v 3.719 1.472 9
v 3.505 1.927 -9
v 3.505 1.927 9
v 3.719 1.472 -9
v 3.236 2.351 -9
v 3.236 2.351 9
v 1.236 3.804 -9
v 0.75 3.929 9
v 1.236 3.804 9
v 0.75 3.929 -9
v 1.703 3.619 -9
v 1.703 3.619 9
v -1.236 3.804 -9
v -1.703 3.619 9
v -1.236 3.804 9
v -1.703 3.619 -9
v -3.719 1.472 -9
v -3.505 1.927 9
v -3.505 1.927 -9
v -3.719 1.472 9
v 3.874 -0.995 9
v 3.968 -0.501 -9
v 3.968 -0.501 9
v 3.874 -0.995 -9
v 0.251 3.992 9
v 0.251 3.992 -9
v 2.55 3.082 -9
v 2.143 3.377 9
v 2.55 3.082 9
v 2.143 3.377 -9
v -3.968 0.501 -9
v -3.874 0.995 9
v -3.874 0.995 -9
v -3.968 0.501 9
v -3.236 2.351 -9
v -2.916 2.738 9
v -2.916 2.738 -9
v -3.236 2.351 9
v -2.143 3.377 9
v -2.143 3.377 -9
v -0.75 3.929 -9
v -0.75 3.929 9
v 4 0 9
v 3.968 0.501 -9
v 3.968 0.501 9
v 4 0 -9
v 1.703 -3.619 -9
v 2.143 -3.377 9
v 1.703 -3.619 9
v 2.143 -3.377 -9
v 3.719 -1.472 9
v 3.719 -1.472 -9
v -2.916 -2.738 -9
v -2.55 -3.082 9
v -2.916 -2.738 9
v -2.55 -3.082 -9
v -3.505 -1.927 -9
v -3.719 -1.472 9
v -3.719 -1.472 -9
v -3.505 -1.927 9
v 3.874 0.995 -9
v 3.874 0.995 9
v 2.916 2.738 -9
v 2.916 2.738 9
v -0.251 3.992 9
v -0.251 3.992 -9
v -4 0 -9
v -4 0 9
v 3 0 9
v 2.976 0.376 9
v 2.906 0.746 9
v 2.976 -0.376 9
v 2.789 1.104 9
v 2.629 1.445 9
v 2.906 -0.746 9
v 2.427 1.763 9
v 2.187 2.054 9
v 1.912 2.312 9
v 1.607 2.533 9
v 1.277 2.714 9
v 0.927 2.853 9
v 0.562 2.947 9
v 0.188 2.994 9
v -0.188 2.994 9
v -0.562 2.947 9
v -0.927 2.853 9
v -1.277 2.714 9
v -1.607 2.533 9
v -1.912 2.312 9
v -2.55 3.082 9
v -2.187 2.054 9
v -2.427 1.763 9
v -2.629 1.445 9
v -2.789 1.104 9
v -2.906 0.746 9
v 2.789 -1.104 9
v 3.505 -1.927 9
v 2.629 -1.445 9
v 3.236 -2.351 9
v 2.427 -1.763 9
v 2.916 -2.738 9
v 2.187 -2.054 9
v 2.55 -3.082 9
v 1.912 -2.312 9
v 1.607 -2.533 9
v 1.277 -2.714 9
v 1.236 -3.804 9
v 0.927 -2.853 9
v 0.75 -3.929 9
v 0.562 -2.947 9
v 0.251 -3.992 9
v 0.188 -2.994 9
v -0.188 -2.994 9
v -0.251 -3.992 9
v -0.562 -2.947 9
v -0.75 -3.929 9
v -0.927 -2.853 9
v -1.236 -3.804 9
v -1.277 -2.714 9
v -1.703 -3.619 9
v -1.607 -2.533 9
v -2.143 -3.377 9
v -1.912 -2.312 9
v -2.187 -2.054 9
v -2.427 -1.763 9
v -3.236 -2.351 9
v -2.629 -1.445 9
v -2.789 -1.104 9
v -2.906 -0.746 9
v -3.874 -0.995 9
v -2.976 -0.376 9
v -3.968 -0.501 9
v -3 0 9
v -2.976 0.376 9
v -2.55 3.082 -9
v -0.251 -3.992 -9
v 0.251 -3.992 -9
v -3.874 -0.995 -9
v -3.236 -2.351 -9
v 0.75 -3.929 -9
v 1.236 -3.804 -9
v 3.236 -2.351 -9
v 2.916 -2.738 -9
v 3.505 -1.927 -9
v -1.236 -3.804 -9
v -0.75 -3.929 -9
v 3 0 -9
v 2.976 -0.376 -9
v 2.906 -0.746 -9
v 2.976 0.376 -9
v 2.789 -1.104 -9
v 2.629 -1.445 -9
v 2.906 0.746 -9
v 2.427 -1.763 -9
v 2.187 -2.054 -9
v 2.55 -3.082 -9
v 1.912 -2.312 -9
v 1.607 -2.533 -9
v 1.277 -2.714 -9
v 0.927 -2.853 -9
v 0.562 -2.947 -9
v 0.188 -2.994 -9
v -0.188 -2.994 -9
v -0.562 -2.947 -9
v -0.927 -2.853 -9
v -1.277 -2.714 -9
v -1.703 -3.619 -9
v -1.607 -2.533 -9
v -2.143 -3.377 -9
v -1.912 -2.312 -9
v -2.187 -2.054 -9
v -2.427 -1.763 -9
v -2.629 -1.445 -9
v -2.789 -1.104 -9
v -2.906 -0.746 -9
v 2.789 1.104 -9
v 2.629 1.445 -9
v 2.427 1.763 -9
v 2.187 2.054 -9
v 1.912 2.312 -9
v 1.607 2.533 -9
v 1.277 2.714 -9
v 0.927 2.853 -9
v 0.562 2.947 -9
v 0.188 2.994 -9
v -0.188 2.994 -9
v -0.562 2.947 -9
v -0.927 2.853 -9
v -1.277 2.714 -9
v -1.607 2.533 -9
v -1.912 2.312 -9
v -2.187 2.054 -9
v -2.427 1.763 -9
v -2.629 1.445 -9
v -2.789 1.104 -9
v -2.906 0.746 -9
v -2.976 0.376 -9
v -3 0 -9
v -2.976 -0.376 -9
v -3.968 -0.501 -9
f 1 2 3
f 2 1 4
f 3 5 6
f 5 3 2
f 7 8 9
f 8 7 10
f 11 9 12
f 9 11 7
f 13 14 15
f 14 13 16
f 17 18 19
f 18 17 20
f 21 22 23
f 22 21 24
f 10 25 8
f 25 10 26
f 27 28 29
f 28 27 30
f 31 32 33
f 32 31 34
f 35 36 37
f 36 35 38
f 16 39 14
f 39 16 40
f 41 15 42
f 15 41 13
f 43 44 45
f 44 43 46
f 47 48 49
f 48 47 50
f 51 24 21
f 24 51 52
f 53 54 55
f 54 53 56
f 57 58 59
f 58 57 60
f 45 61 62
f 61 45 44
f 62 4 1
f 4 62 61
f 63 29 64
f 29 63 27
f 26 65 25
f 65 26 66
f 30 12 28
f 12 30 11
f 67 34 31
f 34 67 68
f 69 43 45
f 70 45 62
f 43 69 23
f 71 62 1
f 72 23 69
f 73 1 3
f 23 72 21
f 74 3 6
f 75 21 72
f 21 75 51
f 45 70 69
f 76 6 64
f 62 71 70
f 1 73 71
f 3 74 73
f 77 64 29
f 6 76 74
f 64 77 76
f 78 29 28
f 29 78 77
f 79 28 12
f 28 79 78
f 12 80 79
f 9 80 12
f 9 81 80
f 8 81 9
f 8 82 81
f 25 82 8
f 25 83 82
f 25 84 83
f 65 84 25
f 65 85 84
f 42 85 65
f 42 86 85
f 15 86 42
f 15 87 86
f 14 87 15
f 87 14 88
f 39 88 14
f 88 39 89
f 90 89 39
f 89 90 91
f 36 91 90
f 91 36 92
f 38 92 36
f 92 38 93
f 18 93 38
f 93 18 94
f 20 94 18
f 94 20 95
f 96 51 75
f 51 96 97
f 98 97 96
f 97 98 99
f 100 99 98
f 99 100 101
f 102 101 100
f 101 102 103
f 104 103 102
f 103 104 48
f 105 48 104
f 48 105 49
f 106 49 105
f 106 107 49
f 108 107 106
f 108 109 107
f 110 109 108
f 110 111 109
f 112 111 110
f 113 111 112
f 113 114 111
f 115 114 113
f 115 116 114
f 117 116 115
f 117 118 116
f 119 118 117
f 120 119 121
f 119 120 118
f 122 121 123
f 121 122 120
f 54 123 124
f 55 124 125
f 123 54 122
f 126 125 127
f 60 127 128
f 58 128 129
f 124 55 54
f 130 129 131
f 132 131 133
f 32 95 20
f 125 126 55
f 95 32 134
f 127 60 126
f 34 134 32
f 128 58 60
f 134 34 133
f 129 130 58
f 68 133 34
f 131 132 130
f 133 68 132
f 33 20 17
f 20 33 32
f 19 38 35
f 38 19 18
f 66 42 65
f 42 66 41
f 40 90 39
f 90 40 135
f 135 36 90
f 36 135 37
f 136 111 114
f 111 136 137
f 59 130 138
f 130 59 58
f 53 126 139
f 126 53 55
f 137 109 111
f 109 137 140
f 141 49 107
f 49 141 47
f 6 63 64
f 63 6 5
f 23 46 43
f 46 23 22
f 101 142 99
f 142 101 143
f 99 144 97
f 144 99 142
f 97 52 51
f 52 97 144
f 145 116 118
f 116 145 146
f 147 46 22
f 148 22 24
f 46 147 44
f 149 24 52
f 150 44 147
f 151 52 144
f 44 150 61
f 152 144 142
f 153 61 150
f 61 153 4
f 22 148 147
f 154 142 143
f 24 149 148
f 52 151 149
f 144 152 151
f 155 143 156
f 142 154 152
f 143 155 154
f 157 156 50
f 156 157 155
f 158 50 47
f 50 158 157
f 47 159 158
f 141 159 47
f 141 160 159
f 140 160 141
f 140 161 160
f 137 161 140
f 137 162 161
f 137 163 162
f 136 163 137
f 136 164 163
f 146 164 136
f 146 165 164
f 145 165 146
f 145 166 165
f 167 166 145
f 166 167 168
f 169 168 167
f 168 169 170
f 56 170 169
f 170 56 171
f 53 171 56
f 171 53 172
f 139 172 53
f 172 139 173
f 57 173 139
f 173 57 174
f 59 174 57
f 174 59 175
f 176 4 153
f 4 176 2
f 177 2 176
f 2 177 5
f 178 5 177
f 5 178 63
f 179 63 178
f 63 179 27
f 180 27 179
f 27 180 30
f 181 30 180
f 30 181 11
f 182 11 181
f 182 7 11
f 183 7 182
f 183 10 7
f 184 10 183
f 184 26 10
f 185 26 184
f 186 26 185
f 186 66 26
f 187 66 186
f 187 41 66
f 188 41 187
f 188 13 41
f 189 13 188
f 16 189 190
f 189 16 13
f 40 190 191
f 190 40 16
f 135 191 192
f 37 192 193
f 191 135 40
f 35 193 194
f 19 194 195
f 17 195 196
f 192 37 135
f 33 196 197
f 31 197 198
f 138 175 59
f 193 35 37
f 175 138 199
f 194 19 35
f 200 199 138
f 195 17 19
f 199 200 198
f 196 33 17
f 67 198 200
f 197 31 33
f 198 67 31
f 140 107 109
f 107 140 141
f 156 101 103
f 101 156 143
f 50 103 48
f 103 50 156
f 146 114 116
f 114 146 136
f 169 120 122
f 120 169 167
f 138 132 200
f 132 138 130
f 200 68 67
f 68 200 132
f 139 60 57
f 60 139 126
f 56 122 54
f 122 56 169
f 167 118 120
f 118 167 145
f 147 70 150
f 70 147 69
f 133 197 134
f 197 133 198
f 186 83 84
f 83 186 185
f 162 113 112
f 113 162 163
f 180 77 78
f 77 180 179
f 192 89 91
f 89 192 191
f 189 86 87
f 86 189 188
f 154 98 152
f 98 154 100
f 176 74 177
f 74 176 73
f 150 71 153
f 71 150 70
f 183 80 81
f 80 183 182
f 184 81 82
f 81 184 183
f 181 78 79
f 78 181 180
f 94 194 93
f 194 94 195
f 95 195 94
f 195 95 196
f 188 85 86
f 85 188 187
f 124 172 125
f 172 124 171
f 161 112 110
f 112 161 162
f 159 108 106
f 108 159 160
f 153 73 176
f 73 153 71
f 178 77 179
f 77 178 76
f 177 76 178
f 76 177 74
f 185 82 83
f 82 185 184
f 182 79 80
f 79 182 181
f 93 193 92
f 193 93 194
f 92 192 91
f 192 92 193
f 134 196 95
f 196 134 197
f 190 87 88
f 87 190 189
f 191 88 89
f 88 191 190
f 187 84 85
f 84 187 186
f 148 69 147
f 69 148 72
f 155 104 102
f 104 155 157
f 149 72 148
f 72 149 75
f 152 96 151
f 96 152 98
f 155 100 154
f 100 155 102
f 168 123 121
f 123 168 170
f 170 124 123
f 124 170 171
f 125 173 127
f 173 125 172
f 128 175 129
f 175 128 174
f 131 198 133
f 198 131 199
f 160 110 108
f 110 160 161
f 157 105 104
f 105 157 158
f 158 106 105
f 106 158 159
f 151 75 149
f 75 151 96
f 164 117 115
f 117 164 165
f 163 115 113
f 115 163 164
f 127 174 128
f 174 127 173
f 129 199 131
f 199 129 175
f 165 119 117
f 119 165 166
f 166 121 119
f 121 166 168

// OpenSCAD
$fn = 50;


difference() {
	union() {
		translate(v = [0, 0, -9.0000000000]) {
			cylinder(h = 18, r = 4.0000000000);
		}
	}
	union() {
		translate(v = [0, 0, -100.0000000000]) {
			cylinder(h = 200, r = 3);
		}
	}
}
